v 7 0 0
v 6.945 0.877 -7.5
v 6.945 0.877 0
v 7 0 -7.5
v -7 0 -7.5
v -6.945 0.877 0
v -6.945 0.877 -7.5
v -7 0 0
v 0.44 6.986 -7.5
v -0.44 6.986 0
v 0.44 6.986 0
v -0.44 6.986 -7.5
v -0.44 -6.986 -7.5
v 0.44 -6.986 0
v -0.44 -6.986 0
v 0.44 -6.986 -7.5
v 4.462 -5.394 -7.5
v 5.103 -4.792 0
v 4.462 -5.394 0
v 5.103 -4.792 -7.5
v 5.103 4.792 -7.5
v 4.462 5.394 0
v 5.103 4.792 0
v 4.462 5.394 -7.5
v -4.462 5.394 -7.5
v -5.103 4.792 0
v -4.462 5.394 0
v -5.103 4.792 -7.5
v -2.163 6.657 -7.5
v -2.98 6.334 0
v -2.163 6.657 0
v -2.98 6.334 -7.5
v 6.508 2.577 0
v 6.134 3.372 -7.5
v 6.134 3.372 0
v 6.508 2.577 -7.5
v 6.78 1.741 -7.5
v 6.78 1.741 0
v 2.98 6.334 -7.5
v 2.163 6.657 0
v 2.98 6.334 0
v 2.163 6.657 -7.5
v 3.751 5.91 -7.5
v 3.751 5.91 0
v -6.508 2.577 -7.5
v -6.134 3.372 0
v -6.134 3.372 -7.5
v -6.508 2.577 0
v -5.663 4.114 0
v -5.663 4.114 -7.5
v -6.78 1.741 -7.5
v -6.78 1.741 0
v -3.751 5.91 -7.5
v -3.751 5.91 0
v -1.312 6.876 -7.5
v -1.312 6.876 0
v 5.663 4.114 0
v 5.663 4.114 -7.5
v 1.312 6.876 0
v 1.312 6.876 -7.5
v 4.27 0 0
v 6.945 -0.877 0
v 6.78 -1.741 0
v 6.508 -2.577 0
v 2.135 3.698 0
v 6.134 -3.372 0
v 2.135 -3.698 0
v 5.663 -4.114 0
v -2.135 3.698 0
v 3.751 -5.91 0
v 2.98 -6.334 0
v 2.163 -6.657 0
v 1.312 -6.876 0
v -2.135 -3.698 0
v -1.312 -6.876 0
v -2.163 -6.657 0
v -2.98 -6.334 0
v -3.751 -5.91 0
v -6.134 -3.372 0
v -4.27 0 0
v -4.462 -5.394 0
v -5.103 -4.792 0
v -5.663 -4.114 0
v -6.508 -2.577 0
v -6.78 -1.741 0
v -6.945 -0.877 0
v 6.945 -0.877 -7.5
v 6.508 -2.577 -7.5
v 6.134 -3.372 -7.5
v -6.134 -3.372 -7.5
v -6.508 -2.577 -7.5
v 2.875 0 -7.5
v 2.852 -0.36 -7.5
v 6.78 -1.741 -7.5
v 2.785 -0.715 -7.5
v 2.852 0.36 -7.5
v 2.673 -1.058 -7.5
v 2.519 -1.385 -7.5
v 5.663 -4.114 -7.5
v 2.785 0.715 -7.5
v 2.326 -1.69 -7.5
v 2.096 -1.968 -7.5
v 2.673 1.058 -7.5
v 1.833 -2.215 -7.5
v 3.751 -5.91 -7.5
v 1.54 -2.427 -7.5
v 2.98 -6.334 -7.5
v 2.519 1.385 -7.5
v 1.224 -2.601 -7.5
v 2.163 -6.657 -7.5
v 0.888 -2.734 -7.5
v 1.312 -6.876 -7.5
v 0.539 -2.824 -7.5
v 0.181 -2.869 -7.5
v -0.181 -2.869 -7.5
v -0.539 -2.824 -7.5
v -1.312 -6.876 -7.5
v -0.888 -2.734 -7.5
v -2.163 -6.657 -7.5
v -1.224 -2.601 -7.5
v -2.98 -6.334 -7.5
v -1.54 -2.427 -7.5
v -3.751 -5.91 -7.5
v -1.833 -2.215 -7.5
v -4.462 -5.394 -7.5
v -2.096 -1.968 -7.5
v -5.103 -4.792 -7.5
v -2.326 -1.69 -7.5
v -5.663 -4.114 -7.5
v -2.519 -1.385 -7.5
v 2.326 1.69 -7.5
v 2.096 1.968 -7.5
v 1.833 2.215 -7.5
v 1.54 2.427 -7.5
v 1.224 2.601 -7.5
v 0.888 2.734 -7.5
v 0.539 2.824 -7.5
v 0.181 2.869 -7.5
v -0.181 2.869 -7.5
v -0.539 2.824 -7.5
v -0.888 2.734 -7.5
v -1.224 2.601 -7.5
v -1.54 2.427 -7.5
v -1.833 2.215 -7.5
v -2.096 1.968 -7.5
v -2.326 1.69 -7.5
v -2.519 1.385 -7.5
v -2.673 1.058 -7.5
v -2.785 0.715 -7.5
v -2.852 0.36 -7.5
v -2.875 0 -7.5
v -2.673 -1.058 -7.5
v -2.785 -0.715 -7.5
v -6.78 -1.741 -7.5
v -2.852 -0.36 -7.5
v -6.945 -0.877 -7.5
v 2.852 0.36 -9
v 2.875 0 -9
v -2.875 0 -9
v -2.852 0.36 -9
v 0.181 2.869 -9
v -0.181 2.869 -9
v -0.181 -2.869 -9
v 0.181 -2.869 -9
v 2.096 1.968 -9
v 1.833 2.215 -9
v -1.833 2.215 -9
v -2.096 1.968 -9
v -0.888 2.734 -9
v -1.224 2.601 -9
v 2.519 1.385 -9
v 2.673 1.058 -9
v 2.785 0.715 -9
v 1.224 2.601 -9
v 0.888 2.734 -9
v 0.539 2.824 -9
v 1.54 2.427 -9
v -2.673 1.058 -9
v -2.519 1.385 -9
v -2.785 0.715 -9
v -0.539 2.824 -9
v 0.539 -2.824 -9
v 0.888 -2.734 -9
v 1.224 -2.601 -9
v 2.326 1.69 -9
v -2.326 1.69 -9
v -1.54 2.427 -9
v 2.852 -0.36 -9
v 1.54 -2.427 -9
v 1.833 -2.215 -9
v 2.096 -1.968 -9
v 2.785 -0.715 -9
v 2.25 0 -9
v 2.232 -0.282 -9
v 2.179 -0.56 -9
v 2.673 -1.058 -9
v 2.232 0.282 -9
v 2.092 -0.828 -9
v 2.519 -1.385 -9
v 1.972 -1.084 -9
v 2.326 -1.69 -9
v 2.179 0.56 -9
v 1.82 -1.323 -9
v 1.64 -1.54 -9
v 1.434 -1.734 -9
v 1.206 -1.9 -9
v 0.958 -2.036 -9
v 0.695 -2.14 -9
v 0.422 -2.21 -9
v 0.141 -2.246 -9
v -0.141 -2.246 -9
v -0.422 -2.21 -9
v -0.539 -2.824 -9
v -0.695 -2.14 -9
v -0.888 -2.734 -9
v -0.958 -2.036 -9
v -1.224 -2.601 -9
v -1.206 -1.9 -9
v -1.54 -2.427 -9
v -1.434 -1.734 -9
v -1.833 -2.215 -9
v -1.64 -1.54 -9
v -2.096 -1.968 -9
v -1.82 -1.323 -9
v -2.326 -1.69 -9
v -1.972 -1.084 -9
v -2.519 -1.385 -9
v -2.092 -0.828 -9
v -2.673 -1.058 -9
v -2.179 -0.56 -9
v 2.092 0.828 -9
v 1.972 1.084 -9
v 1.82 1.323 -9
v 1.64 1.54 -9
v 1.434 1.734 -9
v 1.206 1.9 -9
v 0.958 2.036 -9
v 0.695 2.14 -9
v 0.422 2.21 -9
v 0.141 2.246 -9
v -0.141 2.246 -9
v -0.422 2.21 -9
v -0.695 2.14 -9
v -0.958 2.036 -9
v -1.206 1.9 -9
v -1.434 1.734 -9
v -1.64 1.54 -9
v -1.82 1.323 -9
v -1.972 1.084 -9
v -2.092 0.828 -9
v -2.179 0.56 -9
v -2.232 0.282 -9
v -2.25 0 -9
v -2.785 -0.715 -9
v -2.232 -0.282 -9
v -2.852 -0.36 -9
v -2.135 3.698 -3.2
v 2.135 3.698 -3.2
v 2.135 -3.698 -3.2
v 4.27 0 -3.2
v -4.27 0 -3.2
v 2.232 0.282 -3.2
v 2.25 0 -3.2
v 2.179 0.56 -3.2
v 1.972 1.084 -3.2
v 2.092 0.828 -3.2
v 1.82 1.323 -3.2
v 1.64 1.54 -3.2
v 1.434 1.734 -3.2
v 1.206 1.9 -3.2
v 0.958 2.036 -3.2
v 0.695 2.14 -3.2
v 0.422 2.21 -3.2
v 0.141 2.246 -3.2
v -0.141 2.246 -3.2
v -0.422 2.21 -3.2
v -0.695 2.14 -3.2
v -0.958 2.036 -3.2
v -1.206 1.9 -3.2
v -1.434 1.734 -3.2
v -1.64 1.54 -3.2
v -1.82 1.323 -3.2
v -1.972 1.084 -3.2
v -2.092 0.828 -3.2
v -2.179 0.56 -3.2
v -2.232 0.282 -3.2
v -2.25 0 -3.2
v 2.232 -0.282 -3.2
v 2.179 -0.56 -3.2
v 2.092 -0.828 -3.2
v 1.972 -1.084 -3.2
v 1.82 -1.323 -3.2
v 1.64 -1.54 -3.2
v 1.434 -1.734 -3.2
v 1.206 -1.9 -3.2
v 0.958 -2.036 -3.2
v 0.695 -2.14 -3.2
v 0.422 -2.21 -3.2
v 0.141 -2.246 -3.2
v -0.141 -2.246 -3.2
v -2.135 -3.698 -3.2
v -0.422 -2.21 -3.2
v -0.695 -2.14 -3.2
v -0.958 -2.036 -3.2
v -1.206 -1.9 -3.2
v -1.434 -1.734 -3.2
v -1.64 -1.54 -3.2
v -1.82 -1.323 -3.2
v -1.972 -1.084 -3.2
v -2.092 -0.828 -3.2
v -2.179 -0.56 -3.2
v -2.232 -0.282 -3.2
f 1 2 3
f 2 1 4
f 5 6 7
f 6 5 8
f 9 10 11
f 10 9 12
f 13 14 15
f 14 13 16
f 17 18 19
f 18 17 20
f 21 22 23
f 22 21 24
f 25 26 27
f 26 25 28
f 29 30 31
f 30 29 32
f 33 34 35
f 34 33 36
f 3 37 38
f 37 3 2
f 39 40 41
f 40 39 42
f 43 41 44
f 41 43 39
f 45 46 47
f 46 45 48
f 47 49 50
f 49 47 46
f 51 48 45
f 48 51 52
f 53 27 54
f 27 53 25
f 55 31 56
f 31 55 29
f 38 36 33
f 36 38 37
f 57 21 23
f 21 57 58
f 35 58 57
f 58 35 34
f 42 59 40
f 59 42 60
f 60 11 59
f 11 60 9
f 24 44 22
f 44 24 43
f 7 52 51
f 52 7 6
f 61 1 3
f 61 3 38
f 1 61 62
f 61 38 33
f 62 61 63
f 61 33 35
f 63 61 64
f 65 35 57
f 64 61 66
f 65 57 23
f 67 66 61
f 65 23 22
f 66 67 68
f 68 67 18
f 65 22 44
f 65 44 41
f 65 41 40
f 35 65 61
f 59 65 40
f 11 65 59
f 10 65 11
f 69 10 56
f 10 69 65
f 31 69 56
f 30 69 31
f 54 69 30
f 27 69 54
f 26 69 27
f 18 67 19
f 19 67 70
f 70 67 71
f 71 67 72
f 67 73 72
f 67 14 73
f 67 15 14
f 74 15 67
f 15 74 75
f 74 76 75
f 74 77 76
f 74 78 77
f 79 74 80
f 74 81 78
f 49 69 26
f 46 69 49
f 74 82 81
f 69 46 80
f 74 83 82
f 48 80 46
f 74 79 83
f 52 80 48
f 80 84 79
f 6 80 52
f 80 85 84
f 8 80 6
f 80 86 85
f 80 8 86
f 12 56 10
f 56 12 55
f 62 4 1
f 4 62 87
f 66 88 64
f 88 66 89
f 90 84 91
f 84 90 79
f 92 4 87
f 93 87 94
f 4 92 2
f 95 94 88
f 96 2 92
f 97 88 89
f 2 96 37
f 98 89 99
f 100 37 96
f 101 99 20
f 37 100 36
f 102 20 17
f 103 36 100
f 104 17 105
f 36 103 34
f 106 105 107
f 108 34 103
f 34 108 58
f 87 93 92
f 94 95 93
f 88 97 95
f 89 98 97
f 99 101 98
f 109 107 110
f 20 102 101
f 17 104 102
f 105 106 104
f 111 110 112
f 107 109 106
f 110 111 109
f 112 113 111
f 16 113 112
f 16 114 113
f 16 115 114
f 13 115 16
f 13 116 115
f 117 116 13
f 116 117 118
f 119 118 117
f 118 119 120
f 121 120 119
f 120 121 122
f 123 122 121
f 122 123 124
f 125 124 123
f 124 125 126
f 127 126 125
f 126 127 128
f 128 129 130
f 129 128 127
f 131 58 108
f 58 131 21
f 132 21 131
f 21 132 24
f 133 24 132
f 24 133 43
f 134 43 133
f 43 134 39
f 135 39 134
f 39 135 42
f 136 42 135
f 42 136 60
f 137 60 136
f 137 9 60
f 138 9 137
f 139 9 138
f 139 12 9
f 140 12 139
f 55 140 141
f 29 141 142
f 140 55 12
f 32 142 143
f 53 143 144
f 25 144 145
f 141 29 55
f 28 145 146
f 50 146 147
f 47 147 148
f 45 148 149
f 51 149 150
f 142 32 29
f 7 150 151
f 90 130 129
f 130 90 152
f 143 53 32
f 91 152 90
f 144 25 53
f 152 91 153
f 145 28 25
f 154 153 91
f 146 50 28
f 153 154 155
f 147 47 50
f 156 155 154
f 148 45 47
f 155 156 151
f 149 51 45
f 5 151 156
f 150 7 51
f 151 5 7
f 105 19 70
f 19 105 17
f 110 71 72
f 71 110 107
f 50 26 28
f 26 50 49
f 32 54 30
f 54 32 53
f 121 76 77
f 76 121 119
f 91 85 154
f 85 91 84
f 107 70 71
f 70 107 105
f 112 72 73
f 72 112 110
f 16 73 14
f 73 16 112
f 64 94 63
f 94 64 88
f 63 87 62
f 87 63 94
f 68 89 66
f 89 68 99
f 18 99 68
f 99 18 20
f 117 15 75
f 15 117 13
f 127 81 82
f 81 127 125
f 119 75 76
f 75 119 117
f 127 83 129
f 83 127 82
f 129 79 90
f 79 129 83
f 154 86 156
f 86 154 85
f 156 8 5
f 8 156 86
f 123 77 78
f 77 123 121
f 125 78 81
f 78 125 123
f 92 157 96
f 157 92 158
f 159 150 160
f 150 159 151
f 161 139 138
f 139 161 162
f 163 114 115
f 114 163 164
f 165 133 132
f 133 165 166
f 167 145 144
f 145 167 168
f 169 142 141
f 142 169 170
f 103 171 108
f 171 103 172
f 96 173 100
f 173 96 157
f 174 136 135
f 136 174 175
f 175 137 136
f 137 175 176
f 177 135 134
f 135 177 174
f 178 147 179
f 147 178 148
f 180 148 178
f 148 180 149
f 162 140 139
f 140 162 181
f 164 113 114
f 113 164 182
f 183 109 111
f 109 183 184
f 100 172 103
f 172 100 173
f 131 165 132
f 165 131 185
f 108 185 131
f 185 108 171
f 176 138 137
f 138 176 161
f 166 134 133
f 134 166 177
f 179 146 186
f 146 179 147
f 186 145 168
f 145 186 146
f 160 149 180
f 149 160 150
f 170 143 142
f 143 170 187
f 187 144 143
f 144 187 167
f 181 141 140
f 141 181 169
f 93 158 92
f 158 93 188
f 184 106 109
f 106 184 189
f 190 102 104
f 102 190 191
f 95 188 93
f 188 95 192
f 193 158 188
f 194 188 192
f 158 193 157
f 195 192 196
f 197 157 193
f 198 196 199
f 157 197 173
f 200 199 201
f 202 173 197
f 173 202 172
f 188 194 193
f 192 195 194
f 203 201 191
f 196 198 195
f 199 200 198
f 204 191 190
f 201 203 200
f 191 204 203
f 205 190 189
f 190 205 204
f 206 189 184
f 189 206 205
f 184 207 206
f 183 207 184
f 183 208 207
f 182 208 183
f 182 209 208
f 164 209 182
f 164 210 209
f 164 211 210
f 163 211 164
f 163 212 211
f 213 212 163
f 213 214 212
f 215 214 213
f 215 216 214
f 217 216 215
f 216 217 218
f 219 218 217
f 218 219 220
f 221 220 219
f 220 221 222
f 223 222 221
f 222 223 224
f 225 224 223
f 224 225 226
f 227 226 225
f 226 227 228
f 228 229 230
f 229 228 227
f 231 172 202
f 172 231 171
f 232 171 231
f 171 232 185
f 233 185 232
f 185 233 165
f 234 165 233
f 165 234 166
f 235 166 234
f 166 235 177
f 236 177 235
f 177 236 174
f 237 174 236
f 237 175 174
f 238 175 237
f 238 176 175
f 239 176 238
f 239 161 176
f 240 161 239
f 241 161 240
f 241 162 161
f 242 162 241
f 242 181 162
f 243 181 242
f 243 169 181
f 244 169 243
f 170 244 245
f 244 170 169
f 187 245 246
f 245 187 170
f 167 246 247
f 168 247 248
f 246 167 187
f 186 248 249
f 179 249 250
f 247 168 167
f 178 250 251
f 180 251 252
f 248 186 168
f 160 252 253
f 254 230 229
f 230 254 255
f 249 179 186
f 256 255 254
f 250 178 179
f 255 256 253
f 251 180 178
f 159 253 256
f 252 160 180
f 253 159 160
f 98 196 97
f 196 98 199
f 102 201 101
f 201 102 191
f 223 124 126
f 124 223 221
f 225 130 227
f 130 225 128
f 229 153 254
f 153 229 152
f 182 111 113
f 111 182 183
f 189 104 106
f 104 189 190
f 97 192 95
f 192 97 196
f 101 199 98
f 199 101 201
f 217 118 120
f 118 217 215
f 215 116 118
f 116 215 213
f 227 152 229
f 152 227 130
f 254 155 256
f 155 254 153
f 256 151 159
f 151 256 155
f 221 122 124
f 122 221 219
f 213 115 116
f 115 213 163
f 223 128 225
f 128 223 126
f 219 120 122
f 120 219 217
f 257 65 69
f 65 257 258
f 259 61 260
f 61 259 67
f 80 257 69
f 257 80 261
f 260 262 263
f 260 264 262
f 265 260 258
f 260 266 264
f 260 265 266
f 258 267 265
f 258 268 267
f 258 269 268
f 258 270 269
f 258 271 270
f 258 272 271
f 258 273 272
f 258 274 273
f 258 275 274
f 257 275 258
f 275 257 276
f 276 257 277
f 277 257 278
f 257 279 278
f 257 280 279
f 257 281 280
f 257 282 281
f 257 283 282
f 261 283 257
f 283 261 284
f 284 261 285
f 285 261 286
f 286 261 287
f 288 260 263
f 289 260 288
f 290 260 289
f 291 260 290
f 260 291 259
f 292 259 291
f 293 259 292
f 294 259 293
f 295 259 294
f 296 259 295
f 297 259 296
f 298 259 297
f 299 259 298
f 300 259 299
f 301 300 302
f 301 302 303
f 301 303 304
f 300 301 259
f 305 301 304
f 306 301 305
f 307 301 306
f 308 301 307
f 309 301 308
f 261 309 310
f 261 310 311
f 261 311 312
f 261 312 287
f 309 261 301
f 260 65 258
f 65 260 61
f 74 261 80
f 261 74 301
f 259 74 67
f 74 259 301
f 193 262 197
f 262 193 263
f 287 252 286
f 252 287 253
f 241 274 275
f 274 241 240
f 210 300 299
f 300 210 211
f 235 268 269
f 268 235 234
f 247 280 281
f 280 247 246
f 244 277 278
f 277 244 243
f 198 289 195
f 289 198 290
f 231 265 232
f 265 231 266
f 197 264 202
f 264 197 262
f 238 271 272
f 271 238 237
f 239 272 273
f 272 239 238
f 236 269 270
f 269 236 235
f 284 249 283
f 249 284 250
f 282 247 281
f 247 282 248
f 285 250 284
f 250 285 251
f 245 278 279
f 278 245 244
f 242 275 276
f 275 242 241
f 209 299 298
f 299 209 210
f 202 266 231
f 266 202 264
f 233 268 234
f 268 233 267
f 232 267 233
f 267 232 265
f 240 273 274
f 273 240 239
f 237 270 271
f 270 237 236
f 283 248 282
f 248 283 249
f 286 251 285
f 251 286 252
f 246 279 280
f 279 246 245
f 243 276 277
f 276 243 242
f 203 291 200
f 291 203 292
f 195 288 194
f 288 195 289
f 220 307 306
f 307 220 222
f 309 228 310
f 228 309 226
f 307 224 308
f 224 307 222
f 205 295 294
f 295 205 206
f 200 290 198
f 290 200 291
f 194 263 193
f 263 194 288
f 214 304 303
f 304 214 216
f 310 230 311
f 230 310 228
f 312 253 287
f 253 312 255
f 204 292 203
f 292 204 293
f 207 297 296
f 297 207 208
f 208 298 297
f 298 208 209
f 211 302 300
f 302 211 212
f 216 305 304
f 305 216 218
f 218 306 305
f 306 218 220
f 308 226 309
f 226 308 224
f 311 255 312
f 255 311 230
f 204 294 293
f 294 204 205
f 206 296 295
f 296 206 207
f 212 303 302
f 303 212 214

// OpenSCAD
$fn = 50;


difference() {
	union() {
		translate(v = [0, 0, -7.5000000000]) {
			cylinder(h = 7.5000000000, r = 7.0000000000);
		}
		translate(v = [0, 0, -9.0000000000]) {
			cylinder(h = 9, r = 2.8750000000);
		}
	}
	union() {
		translate(v = [0, 0, 0]) {
			rotate(a = [0, 0, 0]) {
				difference() {
					union() {
						translate(v = [0, 0, -3.2000000000]) {
							linear_extrude(height = 3.2000000000) {
								polygon(points = [[4.2698000000, 0.0000000000], [2.1349000000, 3.6977552691], [-2.1349000000, 3.6977552691], [-4.2698000000, 0.0000000000], [-2.1349000000, -3.6977552691], [2.1349000000, -3.6977552691]]);
							}
						}
					}
					union();
				}
			}
		}
		#translate(v = [0, 0, -100.0000000000]) {
			cylinder(h = 200, r = 2.2500000000);
		}
	}
}
